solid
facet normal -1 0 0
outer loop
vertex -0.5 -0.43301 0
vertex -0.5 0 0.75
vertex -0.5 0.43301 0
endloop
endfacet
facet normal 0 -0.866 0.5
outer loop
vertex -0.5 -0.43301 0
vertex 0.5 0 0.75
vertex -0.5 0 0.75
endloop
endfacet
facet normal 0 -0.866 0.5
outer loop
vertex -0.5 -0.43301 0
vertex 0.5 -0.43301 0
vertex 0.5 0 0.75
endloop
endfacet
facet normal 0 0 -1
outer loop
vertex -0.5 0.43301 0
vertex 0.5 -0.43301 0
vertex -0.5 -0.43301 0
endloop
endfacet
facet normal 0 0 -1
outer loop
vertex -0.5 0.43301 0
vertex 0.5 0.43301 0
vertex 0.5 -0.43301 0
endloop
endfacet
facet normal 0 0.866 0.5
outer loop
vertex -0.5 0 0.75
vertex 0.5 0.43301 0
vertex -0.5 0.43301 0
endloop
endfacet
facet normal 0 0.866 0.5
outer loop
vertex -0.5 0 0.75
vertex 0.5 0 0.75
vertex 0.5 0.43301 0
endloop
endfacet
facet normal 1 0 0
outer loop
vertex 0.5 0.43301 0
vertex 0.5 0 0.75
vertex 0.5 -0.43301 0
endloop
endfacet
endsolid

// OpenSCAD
//Triangular Prism (Equilateral) for Basic Shapes
//by Slashee the Cow

translate([-0.5,0,0.25])
rotate([180,0,0])
rotate([0,90,0])
linear_extrude(1, false)
circle(d  = 1, $fn = 3);
